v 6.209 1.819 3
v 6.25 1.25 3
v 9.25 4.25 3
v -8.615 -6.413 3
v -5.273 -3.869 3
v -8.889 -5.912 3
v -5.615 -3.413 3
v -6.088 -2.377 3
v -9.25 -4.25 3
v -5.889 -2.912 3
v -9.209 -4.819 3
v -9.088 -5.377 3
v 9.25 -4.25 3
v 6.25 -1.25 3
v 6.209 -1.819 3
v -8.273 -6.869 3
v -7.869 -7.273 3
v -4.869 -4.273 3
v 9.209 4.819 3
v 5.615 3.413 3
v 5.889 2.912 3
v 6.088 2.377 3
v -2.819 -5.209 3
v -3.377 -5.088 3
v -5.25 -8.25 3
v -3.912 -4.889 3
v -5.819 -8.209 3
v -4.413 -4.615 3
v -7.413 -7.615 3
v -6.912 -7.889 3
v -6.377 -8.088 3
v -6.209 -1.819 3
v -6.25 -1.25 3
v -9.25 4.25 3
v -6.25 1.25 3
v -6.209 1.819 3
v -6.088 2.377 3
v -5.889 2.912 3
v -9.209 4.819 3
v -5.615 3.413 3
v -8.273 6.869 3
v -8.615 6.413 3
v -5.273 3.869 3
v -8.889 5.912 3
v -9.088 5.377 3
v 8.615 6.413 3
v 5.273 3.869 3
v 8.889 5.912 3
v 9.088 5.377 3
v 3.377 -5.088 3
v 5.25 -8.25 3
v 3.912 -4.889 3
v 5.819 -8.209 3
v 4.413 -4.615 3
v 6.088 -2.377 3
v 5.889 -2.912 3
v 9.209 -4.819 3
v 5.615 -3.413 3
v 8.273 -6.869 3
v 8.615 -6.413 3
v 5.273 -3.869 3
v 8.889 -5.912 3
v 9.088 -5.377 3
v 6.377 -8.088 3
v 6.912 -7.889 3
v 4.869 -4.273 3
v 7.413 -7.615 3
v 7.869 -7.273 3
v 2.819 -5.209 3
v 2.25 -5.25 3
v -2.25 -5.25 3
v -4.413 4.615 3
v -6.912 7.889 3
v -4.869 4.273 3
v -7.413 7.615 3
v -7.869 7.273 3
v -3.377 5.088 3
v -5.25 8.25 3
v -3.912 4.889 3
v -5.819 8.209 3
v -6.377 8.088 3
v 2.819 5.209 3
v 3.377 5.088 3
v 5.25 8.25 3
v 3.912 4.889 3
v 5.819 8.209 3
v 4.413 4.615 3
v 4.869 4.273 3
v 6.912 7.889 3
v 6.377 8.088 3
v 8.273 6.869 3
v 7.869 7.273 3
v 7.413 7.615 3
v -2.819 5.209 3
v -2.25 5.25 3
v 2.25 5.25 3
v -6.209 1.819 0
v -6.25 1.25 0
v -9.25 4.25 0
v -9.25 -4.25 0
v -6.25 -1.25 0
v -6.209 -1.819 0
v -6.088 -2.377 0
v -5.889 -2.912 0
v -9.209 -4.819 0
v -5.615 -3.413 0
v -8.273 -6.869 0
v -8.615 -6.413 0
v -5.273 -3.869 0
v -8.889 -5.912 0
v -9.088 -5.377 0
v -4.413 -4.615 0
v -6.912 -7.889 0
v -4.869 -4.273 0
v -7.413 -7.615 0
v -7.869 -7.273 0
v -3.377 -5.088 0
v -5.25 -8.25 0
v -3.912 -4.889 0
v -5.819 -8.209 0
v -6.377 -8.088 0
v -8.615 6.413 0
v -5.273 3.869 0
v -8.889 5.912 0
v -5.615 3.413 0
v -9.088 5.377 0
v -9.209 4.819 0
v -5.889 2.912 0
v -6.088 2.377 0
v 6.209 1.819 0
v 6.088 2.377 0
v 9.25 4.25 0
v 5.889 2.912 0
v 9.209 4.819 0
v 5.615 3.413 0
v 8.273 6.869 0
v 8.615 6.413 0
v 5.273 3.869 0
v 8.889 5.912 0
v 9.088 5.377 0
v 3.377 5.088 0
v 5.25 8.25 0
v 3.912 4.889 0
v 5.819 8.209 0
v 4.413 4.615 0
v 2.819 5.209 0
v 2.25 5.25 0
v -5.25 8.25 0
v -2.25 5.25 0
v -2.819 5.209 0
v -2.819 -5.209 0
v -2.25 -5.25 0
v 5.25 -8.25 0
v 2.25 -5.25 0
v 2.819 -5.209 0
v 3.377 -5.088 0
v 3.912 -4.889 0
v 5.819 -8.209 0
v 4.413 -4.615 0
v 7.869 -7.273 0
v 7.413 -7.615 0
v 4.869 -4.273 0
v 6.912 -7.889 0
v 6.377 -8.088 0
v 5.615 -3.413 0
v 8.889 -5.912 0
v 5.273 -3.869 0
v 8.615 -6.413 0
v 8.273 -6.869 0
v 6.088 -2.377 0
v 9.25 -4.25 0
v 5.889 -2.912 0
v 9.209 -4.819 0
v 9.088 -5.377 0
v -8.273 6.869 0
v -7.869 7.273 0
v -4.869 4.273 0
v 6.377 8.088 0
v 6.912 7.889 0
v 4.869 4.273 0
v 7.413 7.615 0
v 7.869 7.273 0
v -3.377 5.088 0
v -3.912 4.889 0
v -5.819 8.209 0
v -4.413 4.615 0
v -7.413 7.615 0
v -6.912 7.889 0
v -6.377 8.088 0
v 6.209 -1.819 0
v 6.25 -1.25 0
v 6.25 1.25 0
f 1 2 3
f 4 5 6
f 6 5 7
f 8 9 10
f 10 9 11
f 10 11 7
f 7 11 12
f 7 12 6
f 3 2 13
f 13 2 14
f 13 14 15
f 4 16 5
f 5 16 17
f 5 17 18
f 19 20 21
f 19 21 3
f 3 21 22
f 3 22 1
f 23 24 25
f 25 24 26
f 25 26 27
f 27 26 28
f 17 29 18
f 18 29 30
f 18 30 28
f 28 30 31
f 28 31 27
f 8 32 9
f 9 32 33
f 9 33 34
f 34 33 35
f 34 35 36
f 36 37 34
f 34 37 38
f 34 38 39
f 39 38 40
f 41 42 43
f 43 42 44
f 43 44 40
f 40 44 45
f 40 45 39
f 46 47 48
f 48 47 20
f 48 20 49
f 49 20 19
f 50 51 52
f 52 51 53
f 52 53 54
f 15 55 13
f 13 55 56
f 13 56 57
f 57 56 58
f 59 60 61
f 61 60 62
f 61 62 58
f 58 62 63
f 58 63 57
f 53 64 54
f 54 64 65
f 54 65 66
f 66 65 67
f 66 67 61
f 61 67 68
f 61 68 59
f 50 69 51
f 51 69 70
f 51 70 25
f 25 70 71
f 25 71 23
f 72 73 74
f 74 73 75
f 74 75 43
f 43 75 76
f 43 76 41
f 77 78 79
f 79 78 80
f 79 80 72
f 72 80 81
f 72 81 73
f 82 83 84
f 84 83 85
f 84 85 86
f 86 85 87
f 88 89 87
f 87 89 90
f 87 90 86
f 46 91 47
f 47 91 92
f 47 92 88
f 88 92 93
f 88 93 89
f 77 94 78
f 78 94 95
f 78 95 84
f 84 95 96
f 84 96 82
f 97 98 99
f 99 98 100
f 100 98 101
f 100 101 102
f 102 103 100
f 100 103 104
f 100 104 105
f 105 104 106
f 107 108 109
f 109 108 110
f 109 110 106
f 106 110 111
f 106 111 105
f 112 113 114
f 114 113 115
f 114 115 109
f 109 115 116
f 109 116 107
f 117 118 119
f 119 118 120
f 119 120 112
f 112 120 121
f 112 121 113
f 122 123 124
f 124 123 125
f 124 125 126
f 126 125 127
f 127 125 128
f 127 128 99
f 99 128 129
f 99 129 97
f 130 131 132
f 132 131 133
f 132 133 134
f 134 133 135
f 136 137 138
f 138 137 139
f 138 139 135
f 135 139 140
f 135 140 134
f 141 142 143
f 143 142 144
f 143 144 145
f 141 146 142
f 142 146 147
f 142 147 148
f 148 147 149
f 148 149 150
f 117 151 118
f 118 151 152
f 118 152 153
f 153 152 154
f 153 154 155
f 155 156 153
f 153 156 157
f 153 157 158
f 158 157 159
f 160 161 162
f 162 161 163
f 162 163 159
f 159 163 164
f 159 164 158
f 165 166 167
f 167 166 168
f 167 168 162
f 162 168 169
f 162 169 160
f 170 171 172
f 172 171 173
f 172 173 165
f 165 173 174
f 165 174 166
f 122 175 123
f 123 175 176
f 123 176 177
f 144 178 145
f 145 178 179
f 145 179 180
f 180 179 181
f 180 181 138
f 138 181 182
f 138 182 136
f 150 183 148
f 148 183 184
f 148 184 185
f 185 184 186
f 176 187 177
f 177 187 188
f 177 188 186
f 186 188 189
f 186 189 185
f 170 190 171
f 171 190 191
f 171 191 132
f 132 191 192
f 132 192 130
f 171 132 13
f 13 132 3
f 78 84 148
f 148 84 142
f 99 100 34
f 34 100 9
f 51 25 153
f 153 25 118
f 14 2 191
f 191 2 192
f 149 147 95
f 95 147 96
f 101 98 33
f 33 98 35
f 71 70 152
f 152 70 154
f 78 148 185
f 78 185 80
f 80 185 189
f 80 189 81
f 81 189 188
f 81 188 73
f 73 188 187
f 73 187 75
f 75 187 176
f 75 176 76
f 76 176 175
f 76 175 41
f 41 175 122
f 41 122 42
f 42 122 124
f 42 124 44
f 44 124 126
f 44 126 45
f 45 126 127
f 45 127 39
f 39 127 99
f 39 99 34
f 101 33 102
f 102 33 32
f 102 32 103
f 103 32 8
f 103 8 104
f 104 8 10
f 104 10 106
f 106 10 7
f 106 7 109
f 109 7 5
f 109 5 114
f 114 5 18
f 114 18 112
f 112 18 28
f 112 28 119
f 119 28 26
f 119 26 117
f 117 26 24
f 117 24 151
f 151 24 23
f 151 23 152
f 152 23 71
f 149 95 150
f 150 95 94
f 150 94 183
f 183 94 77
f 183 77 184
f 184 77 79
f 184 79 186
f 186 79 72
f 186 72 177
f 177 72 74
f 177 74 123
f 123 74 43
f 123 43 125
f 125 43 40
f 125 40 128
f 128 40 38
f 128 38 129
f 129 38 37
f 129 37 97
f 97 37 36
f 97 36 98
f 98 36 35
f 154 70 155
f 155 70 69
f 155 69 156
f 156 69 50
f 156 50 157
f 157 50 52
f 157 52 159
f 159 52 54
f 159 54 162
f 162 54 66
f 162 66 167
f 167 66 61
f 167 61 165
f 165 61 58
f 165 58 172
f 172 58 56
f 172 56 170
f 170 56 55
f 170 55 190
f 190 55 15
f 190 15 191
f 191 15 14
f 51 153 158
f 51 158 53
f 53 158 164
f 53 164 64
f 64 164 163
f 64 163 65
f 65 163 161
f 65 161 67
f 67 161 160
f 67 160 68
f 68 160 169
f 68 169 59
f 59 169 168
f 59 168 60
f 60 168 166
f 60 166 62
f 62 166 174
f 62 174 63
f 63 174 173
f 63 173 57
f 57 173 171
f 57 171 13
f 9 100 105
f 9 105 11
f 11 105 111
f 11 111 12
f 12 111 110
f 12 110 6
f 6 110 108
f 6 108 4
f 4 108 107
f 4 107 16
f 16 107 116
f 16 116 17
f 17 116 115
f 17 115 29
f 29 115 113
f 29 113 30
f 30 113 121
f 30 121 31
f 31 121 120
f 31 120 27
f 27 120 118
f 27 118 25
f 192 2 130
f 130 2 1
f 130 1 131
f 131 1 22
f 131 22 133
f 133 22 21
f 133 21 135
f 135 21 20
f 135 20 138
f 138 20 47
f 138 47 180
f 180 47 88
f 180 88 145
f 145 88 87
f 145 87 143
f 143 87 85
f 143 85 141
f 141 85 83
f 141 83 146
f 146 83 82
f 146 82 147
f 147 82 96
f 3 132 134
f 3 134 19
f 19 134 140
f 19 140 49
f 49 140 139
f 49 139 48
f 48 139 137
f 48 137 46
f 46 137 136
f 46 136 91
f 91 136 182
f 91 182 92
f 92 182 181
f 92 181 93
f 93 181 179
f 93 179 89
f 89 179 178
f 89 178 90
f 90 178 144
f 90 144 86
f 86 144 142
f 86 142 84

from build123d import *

# Parameters (mm, degrees)
SKETCH1_W           = 18.5
SKETCH1_H           = 16.5
SKETCH1_W_2         = 12.5
SKETCH1_H_2         = 10.5
BOSS_EXTRUDE1_DEPTH = 3
FILLET1_R           = 4


with BuildPart() as part:
    # Sketch1 → Boss-Extrude1 (new body)
    with BuildSketch(Plane.XY):
        Rectangle(SKETCH1_W, SKETCH1_H)
        Rectangle(SKETCH1_W_2, SKETCH1_H_2, mode=Mode.SUBTRACT)
    extrude(amount=BOSS_EXTRUDE1_DEPTH)

    # Fillet1
    fillet1_edges = [part.edges().sort_by_distance(p)[0] for p in [
        (6.25, -5.25, 1.5),
        (6.25, 5.25, 1.5),
        (-6.25, 5.25, 1.5),
        (-6.25, -5.25, 1.5),
        (9.25, -8.25, 1.5),
        (-9.25, -8.25, 1.5),
        (-9.25, 8.25, 1.5),
        (9.25, 8.25, 1.5),
    ]]
    fillet(fillet1_edges, radius=FILLET1_R)


solid = part.part
